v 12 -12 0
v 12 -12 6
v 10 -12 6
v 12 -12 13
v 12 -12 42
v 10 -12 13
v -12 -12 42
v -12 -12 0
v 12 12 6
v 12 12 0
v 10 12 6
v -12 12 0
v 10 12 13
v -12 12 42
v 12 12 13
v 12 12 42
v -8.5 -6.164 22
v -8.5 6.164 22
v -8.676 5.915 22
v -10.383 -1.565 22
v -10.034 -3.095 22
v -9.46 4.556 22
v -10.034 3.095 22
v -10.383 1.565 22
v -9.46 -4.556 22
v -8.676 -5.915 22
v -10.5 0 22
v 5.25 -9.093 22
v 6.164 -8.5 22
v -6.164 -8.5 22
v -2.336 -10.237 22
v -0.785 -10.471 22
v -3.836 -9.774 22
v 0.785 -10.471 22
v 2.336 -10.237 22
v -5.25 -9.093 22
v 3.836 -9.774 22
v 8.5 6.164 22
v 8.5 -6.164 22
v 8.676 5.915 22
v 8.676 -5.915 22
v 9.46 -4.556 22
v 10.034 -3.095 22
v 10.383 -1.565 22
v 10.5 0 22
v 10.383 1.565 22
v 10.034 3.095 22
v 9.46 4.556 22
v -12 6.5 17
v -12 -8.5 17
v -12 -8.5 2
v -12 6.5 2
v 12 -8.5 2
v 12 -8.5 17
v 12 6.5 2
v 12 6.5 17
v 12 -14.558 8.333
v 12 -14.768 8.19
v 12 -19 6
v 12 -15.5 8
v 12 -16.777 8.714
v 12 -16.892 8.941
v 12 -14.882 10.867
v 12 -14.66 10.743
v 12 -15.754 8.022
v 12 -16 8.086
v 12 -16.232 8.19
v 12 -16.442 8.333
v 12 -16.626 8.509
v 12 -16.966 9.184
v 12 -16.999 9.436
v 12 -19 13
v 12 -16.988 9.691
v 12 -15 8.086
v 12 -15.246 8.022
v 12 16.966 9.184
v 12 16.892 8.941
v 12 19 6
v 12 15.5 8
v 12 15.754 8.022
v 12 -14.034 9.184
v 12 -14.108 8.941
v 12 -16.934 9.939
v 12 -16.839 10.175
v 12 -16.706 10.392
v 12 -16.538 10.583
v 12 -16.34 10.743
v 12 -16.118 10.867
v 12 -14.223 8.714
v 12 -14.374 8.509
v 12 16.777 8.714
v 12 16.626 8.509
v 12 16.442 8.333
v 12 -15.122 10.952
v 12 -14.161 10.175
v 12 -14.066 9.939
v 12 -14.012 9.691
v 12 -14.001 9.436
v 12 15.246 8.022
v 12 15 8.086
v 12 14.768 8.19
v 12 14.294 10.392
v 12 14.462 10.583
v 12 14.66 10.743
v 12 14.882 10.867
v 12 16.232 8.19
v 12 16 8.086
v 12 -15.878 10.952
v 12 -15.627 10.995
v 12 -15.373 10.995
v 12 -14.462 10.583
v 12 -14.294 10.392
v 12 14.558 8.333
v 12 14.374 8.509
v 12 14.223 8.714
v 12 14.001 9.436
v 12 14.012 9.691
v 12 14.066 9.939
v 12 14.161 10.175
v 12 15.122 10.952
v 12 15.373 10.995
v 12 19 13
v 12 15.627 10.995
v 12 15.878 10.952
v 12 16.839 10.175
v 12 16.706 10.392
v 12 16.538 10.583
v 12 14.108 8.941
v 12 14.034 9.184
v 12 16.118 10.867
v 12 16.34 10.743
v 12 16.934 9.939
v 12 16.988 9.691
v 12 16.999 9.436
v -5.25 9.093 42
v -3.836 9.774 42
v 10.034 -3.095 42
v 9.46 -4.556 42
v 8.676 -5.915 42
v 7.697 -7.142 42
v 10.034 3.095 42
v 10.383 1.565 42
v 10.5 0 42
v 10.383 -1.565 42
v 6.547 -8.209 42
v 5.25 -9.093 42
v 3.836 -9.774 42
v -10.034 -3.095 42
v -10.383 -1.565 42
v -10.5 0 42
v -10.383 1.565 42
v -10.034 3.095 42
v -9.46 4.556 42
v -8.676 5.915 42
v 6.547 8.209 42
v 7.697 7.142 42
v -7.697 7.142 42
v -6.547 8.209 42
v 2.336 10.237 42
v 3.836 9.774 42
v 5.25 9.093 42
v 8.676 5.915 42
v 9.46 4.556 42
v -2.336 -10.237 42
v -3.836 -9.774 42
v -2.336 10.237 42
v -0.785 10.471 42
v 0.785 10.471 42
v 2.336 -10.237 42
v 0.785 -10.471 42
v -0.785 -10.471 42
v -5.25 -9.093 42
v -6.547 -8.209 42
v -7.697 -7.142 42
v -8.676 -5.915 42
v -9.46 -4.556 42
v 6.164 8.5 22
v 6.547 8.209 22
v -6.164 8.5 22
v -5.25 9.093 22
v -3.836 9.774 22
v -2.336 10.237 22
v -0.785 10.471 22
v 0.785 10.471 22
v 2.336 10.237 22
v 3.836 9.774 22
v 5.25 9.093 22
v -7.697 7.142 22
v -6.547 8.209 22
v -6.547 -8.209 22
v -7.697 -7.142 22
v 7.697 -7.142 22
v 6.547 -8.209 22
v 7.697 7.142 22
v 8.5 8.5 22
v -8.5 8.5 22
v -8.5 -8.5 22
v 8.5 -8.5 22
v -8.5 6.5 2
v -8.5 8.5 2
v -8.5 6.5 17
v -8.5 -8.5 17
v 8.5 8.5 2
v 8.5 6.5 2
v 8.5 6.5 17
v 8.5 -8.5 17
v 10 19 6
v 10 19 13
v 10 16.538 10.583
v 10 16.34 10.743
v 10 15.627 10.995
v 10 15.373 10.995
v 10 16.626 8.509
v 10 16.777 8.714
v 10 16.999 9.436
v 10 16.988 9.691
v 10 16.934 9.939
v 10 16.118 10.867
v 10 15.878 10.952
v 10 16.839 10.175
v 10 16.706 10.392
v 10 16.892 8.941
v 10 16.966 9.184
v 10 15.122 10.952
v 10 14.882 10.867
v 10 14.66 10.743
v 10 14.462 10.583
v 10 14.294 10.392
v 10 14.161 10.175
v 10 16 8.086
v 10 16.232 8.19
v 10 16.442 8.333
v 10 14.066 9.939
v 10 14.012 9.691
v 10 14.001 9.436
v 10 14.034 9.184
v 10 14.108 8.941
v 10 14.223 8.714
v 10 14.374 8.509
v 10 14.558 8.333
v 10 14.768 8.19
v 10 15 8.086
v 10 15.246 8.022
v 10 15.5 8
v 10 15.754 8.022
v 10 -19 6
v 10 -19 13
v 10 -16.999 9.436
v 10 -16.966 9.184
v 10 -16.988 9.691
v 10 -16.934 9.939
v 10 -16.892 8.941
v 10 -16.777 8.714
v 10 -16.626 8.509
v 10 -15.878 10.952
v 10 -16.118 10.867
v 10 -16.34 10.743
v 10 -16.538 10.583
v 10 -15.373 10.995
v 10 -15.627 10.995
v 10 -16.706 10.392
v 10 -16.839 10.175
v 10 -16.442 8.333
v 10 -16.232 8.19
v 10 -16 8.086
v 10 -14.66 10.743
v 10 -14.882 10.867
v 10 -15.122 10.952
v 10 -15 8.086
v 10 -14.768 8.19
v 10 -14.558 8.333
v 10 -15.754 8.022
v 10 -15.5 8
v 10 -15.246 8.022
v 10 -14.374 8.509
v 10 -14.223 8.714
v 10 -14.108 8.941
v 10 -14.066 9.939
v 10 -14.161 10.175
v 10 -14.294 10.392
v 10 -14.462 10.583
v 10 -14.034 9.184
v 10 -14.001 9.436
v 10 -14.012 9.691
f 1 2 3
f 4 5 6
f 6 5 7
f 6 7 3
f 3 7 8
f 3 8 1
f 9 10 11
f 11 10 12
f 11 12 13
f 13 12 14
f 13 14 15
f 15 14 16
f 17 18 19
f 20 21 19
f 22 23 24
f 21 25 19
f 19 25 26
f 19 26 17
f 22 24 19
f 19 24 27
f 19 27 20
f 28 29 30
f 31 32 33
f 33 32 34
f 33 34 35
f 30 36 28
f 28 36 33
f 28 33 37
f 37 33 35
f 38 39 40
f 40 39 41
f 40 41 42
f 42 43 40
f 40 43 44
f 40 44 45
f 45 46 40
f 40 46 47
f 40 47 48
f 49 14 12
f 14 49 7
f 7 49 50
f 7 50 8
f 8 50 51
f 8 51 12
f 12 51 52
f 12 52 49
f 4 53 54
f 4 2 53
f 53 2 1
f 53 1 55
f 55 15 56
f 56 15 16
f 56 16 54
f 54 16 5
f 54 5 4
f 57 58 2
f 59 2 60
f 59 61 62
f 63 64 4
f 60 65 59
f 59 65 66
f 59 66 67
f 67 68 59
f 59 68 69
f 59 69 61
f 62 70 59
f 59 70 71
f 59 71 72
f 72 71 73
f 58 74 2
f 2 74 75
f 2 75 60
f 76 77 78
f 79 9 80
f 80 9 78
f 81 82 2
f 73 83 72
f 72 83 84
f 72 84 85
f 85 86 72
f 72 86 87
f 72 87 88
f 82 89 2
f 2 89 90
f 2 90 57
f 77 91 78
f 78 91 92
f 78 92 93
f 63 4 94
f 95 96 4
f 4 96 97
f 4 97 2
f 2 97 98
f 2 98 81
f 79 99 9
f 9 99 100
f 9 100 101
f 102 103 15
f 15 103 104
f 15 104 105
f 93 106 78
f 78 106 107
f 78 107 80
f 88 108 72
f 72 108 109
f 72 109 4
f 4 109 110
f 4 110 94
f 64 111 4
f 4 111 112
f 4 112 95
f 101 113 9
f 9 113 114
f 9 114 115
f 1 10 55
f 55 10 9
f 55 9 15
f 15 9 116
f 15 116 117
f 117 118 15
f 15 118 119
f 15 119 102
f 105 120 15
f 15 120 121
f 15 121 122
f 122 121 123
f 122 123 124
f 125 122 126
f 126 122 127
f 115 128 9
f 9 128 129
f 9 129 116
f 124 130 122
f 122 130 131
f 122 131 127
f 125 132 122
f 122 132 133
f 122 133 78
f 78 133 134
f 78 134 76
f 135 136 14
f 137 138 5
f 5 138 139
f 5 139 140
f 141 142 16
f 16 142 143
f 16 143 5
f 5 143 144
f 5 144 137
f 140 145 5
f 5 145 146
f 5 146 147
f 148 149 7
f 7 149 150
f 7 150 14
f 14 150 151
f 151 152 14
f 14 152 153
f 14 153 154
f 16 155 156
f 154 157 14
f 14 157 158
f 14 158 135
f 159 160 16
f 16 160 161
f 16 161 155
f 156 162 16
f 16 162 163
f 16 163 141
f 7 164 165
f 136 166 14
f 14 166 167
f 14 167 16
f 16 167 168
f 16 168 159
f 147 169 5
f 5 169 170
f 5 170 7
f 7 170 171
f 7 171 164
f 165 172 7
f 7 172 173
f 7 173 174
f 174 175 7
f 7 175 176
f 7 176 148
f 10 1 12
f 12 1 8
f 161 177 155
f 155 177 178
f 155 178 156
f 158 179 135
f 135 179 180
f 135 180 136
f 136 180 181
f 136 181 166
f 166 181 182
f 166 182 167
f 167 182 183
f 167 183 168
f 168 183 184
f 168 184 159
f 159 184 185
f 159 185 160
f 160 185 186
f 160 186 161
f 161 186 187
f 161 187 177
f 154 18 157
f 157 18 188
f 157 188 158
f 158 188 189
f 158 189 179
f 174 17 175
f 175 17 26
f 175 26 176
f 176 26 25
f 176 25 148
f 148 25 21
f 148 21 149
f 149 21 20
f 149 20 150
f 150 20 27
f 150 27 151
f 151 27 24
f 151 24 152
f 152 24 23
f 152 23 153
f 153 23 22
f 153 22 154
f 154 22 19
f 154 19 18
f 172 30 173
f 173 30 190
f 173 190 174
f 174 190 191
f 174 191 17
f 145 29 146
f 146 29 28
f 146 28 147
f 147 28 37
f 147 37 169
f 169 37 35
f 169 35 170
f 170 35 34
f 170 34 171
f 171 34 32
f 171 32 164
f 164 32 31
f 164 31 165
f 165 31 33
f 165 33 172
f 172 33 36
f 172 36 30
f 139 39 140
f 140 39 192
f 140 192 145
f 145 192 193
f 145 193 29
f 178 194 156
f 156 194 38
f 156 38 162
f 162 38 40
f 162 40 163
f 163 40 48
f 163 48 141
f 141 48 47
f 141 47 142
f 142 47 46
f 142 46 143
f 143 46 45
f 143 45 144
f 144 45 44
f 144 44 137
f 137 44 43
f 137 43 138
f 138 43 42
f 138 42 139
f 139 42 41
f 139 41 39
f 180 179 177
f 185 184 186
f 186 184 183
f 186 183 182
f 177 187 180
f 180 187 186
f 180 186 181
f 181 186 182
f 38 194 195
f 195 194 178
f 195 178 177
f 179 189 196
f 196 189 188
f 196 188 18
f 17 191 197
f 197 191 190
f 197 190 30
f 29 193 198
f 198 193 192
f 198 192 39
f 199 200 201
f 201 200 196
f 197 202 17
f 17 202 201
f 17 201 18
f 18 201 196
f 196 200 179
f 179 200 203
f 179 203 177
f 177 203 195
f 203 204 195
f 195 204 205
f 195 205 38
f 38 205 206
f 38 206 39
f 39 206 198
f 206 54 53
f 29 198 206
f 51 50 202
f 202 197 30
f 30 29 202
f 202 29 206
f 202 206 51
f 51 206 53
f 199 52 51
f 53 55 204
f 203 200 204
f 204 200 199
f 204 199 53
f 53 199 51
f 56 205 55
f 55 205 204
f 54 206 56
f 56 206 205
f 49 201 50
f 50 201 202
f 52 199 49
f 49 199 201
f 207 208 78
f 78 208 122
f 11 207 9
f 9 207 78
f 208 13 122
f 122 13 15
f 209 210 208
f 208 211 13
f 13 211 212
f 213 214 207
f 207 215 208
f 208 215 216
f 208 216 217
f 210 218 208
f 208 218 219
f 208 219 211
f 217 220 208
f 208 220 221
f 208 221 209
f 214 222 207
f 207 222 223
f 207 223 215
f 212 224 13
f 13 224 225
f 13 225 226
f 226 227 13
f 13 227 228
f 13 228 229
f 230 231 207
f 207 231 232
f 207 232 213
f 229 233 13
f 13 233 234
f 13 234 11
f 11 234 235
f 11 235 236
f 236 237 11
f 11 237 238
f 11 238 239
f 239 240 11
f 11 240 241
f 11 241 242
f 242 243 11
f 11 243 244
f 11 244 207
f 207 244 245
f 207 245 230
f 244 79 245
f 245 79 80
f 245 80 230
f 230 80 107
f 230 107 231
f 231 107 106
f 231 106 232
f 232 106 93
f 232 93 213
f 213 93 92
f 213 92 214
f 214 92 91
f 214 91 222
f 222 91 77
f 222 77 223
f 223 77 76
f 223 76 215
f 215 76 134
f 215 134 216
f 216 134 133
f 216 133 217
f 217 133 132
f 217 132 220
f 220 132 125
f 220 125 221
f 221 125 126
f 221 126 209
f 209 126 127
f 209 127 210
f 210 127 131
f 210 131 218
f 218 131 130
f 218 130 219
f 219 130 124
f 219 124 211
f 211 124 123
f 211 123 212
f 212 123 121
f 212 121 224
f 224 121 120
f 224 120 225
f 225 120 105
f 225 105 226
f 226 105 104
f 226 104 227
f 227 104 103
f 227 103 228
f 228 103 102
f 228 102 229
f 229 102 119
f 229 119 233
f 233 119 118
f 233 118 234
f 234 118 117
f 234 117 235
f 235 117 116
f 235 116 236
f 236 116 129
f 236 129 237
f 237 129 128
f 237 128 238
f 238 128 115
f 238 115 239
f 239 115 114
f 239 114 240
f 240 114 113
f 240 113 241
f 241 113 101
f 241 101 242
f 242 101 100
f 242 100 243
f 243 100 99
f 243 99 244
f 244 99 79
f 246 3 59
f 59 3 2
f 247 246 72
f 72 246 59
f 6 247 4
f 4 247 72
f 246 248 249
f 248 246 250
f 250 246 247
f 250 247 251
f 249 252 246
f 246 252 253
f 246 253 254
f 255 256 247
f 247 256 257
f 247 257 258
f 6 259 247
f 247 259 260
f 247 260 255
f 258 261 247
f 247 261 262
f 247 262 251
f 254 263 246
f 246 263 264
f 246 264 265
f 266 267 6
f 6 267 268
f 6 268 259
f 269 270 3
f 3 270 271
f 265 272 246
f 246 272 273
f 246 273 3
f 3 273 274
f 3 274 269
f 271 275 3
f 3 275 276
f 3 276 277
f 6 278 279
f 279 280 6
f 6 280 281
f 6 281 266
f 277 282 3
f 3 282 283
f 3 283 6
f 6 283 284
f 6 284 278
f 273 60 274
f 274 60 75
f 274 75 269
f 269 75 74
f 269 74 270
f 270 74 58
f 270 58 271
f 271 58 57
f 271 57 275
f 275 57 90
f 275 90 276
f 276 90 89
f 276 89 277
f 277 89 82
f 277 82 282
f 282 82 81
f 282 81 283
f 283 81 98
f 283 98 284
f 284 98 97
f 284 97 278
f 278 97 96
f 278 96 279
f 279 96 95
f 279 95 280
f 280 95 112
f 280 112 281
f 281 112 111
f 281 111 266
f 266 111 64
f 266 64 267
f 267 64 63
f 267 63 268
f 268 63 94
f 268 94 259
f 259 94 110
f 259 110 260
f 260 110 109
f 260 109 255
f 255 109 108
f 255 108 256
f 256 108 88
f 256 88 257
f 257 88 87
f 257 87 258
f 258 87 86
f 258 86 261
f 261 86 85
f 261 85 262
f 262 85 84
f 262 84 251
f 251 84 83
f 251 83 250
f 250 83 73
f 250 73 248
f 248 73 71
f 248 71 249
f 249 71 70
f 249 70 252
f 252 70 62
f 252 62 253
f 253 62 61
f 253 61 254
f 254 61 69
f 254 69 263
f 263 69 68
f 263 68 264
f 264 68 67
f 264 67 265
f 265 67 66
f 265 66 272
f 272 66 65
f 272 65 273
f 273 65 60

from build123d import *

# Parameters (mm, degrees)
SKETCH_1_W          = 24
SKETCH_1_H          = 24
EXTRUDE_1_DEPTH     = 42
SKETCH_3_R          = 10.5
CUT_EXTRUDE_1_DEPTH = 20
SKETCH_4_W          = 17
SKETCH_4_H          = 17
CUT_EXTRUDE_2_DEPTH = 20
SKETCH_5_W          = 15
SKETCH_5_H          = 15
CUT_EXTRUDE_5_DEPTH = 50.839743178
SKETCH_6_W          = 7
SKETCH_6_H          = 7
SKETCH_6_R          = 1.5
EXTRUDE_2_DEPTH     = 2


with BuildPart() as part:
    # Эскиз1 → Бобышка-Вытянуть1 (new body)
    with BuildSketch(Plane.XY):
        Rectangle(SKETCH_1_W, SKETCH_1_H)
    extrude(amount=EXTRUDE_1_DEPTH)

    # Эскиз3 → Вырез-Вытянуть1 (cut)
    with BuildSketch(Plane.XY.offset(42)):
        Circle(SKETCH_3_R)
    extrude(amount=-CUT_EXTRUDE_1_DEPTH, mode=Mode.SUBTRACT)

    # Эскиз4 → Вырез-Вытянуть2 (cut)
    with BuildSketch(Plane.XY.offset(22)):
        Rectangle(SKETCH_4_W, SKETCH_4_H)
    extrude(amount=-CUT_EXTRUDE_2_DEPTH, mode=Mode.SUBTRACT)

    # Эскиз5 → Вырез-Вытянуть5 (cut, through all)
    with BuildSketch(Plane(origin=(12, 0, 0), x_dir=(0, 0, -1), z_dir=(1, 0, 0))):
        with Locations((-9.5, -1)):
            Rectangle(SKETCH_5_W, SKETCH_5_H)
    extrude(amount=-CUT_EXTRUDE_5_DEPTH, mode=Mode.SUBTRACT)

    # Эскиз6 → Бобышка-Вытянуть2 (add)
    # profile 1 of 2: a face of its own
    with BuildSketch(Plane(origin=(12, 0, 0), x_dir=(0, 0, -1), z_dir=(1, 0, 0))):
        with Locations((-9.5, 15.5)):
            Rectangle(SKETCH_6_W, SKETCH_6_H)
        with Locations((-9.5, 15.5)):
            Circle(SKETCH_6_R, mode=Mode.SUBTRACT)
    # profile 2 of 2: a face of its own
    with BuildSketch(Plane(origin=(12, 0, 0), x_dir=(0, 0, -1), z_dir=(1, 0, 0))):
        with Locations((-9.5, -15.5)):
            Rectangle(SKETCH_6_W, SKETCH_6_H)
        with Locations((-9.5, -15.5)):
            Circle(SKETCH_6_R, mode=Mode.SUBTRACT)
    extrude(amount=-EXTRUDE_2_DEPTH)


solid = part.part
